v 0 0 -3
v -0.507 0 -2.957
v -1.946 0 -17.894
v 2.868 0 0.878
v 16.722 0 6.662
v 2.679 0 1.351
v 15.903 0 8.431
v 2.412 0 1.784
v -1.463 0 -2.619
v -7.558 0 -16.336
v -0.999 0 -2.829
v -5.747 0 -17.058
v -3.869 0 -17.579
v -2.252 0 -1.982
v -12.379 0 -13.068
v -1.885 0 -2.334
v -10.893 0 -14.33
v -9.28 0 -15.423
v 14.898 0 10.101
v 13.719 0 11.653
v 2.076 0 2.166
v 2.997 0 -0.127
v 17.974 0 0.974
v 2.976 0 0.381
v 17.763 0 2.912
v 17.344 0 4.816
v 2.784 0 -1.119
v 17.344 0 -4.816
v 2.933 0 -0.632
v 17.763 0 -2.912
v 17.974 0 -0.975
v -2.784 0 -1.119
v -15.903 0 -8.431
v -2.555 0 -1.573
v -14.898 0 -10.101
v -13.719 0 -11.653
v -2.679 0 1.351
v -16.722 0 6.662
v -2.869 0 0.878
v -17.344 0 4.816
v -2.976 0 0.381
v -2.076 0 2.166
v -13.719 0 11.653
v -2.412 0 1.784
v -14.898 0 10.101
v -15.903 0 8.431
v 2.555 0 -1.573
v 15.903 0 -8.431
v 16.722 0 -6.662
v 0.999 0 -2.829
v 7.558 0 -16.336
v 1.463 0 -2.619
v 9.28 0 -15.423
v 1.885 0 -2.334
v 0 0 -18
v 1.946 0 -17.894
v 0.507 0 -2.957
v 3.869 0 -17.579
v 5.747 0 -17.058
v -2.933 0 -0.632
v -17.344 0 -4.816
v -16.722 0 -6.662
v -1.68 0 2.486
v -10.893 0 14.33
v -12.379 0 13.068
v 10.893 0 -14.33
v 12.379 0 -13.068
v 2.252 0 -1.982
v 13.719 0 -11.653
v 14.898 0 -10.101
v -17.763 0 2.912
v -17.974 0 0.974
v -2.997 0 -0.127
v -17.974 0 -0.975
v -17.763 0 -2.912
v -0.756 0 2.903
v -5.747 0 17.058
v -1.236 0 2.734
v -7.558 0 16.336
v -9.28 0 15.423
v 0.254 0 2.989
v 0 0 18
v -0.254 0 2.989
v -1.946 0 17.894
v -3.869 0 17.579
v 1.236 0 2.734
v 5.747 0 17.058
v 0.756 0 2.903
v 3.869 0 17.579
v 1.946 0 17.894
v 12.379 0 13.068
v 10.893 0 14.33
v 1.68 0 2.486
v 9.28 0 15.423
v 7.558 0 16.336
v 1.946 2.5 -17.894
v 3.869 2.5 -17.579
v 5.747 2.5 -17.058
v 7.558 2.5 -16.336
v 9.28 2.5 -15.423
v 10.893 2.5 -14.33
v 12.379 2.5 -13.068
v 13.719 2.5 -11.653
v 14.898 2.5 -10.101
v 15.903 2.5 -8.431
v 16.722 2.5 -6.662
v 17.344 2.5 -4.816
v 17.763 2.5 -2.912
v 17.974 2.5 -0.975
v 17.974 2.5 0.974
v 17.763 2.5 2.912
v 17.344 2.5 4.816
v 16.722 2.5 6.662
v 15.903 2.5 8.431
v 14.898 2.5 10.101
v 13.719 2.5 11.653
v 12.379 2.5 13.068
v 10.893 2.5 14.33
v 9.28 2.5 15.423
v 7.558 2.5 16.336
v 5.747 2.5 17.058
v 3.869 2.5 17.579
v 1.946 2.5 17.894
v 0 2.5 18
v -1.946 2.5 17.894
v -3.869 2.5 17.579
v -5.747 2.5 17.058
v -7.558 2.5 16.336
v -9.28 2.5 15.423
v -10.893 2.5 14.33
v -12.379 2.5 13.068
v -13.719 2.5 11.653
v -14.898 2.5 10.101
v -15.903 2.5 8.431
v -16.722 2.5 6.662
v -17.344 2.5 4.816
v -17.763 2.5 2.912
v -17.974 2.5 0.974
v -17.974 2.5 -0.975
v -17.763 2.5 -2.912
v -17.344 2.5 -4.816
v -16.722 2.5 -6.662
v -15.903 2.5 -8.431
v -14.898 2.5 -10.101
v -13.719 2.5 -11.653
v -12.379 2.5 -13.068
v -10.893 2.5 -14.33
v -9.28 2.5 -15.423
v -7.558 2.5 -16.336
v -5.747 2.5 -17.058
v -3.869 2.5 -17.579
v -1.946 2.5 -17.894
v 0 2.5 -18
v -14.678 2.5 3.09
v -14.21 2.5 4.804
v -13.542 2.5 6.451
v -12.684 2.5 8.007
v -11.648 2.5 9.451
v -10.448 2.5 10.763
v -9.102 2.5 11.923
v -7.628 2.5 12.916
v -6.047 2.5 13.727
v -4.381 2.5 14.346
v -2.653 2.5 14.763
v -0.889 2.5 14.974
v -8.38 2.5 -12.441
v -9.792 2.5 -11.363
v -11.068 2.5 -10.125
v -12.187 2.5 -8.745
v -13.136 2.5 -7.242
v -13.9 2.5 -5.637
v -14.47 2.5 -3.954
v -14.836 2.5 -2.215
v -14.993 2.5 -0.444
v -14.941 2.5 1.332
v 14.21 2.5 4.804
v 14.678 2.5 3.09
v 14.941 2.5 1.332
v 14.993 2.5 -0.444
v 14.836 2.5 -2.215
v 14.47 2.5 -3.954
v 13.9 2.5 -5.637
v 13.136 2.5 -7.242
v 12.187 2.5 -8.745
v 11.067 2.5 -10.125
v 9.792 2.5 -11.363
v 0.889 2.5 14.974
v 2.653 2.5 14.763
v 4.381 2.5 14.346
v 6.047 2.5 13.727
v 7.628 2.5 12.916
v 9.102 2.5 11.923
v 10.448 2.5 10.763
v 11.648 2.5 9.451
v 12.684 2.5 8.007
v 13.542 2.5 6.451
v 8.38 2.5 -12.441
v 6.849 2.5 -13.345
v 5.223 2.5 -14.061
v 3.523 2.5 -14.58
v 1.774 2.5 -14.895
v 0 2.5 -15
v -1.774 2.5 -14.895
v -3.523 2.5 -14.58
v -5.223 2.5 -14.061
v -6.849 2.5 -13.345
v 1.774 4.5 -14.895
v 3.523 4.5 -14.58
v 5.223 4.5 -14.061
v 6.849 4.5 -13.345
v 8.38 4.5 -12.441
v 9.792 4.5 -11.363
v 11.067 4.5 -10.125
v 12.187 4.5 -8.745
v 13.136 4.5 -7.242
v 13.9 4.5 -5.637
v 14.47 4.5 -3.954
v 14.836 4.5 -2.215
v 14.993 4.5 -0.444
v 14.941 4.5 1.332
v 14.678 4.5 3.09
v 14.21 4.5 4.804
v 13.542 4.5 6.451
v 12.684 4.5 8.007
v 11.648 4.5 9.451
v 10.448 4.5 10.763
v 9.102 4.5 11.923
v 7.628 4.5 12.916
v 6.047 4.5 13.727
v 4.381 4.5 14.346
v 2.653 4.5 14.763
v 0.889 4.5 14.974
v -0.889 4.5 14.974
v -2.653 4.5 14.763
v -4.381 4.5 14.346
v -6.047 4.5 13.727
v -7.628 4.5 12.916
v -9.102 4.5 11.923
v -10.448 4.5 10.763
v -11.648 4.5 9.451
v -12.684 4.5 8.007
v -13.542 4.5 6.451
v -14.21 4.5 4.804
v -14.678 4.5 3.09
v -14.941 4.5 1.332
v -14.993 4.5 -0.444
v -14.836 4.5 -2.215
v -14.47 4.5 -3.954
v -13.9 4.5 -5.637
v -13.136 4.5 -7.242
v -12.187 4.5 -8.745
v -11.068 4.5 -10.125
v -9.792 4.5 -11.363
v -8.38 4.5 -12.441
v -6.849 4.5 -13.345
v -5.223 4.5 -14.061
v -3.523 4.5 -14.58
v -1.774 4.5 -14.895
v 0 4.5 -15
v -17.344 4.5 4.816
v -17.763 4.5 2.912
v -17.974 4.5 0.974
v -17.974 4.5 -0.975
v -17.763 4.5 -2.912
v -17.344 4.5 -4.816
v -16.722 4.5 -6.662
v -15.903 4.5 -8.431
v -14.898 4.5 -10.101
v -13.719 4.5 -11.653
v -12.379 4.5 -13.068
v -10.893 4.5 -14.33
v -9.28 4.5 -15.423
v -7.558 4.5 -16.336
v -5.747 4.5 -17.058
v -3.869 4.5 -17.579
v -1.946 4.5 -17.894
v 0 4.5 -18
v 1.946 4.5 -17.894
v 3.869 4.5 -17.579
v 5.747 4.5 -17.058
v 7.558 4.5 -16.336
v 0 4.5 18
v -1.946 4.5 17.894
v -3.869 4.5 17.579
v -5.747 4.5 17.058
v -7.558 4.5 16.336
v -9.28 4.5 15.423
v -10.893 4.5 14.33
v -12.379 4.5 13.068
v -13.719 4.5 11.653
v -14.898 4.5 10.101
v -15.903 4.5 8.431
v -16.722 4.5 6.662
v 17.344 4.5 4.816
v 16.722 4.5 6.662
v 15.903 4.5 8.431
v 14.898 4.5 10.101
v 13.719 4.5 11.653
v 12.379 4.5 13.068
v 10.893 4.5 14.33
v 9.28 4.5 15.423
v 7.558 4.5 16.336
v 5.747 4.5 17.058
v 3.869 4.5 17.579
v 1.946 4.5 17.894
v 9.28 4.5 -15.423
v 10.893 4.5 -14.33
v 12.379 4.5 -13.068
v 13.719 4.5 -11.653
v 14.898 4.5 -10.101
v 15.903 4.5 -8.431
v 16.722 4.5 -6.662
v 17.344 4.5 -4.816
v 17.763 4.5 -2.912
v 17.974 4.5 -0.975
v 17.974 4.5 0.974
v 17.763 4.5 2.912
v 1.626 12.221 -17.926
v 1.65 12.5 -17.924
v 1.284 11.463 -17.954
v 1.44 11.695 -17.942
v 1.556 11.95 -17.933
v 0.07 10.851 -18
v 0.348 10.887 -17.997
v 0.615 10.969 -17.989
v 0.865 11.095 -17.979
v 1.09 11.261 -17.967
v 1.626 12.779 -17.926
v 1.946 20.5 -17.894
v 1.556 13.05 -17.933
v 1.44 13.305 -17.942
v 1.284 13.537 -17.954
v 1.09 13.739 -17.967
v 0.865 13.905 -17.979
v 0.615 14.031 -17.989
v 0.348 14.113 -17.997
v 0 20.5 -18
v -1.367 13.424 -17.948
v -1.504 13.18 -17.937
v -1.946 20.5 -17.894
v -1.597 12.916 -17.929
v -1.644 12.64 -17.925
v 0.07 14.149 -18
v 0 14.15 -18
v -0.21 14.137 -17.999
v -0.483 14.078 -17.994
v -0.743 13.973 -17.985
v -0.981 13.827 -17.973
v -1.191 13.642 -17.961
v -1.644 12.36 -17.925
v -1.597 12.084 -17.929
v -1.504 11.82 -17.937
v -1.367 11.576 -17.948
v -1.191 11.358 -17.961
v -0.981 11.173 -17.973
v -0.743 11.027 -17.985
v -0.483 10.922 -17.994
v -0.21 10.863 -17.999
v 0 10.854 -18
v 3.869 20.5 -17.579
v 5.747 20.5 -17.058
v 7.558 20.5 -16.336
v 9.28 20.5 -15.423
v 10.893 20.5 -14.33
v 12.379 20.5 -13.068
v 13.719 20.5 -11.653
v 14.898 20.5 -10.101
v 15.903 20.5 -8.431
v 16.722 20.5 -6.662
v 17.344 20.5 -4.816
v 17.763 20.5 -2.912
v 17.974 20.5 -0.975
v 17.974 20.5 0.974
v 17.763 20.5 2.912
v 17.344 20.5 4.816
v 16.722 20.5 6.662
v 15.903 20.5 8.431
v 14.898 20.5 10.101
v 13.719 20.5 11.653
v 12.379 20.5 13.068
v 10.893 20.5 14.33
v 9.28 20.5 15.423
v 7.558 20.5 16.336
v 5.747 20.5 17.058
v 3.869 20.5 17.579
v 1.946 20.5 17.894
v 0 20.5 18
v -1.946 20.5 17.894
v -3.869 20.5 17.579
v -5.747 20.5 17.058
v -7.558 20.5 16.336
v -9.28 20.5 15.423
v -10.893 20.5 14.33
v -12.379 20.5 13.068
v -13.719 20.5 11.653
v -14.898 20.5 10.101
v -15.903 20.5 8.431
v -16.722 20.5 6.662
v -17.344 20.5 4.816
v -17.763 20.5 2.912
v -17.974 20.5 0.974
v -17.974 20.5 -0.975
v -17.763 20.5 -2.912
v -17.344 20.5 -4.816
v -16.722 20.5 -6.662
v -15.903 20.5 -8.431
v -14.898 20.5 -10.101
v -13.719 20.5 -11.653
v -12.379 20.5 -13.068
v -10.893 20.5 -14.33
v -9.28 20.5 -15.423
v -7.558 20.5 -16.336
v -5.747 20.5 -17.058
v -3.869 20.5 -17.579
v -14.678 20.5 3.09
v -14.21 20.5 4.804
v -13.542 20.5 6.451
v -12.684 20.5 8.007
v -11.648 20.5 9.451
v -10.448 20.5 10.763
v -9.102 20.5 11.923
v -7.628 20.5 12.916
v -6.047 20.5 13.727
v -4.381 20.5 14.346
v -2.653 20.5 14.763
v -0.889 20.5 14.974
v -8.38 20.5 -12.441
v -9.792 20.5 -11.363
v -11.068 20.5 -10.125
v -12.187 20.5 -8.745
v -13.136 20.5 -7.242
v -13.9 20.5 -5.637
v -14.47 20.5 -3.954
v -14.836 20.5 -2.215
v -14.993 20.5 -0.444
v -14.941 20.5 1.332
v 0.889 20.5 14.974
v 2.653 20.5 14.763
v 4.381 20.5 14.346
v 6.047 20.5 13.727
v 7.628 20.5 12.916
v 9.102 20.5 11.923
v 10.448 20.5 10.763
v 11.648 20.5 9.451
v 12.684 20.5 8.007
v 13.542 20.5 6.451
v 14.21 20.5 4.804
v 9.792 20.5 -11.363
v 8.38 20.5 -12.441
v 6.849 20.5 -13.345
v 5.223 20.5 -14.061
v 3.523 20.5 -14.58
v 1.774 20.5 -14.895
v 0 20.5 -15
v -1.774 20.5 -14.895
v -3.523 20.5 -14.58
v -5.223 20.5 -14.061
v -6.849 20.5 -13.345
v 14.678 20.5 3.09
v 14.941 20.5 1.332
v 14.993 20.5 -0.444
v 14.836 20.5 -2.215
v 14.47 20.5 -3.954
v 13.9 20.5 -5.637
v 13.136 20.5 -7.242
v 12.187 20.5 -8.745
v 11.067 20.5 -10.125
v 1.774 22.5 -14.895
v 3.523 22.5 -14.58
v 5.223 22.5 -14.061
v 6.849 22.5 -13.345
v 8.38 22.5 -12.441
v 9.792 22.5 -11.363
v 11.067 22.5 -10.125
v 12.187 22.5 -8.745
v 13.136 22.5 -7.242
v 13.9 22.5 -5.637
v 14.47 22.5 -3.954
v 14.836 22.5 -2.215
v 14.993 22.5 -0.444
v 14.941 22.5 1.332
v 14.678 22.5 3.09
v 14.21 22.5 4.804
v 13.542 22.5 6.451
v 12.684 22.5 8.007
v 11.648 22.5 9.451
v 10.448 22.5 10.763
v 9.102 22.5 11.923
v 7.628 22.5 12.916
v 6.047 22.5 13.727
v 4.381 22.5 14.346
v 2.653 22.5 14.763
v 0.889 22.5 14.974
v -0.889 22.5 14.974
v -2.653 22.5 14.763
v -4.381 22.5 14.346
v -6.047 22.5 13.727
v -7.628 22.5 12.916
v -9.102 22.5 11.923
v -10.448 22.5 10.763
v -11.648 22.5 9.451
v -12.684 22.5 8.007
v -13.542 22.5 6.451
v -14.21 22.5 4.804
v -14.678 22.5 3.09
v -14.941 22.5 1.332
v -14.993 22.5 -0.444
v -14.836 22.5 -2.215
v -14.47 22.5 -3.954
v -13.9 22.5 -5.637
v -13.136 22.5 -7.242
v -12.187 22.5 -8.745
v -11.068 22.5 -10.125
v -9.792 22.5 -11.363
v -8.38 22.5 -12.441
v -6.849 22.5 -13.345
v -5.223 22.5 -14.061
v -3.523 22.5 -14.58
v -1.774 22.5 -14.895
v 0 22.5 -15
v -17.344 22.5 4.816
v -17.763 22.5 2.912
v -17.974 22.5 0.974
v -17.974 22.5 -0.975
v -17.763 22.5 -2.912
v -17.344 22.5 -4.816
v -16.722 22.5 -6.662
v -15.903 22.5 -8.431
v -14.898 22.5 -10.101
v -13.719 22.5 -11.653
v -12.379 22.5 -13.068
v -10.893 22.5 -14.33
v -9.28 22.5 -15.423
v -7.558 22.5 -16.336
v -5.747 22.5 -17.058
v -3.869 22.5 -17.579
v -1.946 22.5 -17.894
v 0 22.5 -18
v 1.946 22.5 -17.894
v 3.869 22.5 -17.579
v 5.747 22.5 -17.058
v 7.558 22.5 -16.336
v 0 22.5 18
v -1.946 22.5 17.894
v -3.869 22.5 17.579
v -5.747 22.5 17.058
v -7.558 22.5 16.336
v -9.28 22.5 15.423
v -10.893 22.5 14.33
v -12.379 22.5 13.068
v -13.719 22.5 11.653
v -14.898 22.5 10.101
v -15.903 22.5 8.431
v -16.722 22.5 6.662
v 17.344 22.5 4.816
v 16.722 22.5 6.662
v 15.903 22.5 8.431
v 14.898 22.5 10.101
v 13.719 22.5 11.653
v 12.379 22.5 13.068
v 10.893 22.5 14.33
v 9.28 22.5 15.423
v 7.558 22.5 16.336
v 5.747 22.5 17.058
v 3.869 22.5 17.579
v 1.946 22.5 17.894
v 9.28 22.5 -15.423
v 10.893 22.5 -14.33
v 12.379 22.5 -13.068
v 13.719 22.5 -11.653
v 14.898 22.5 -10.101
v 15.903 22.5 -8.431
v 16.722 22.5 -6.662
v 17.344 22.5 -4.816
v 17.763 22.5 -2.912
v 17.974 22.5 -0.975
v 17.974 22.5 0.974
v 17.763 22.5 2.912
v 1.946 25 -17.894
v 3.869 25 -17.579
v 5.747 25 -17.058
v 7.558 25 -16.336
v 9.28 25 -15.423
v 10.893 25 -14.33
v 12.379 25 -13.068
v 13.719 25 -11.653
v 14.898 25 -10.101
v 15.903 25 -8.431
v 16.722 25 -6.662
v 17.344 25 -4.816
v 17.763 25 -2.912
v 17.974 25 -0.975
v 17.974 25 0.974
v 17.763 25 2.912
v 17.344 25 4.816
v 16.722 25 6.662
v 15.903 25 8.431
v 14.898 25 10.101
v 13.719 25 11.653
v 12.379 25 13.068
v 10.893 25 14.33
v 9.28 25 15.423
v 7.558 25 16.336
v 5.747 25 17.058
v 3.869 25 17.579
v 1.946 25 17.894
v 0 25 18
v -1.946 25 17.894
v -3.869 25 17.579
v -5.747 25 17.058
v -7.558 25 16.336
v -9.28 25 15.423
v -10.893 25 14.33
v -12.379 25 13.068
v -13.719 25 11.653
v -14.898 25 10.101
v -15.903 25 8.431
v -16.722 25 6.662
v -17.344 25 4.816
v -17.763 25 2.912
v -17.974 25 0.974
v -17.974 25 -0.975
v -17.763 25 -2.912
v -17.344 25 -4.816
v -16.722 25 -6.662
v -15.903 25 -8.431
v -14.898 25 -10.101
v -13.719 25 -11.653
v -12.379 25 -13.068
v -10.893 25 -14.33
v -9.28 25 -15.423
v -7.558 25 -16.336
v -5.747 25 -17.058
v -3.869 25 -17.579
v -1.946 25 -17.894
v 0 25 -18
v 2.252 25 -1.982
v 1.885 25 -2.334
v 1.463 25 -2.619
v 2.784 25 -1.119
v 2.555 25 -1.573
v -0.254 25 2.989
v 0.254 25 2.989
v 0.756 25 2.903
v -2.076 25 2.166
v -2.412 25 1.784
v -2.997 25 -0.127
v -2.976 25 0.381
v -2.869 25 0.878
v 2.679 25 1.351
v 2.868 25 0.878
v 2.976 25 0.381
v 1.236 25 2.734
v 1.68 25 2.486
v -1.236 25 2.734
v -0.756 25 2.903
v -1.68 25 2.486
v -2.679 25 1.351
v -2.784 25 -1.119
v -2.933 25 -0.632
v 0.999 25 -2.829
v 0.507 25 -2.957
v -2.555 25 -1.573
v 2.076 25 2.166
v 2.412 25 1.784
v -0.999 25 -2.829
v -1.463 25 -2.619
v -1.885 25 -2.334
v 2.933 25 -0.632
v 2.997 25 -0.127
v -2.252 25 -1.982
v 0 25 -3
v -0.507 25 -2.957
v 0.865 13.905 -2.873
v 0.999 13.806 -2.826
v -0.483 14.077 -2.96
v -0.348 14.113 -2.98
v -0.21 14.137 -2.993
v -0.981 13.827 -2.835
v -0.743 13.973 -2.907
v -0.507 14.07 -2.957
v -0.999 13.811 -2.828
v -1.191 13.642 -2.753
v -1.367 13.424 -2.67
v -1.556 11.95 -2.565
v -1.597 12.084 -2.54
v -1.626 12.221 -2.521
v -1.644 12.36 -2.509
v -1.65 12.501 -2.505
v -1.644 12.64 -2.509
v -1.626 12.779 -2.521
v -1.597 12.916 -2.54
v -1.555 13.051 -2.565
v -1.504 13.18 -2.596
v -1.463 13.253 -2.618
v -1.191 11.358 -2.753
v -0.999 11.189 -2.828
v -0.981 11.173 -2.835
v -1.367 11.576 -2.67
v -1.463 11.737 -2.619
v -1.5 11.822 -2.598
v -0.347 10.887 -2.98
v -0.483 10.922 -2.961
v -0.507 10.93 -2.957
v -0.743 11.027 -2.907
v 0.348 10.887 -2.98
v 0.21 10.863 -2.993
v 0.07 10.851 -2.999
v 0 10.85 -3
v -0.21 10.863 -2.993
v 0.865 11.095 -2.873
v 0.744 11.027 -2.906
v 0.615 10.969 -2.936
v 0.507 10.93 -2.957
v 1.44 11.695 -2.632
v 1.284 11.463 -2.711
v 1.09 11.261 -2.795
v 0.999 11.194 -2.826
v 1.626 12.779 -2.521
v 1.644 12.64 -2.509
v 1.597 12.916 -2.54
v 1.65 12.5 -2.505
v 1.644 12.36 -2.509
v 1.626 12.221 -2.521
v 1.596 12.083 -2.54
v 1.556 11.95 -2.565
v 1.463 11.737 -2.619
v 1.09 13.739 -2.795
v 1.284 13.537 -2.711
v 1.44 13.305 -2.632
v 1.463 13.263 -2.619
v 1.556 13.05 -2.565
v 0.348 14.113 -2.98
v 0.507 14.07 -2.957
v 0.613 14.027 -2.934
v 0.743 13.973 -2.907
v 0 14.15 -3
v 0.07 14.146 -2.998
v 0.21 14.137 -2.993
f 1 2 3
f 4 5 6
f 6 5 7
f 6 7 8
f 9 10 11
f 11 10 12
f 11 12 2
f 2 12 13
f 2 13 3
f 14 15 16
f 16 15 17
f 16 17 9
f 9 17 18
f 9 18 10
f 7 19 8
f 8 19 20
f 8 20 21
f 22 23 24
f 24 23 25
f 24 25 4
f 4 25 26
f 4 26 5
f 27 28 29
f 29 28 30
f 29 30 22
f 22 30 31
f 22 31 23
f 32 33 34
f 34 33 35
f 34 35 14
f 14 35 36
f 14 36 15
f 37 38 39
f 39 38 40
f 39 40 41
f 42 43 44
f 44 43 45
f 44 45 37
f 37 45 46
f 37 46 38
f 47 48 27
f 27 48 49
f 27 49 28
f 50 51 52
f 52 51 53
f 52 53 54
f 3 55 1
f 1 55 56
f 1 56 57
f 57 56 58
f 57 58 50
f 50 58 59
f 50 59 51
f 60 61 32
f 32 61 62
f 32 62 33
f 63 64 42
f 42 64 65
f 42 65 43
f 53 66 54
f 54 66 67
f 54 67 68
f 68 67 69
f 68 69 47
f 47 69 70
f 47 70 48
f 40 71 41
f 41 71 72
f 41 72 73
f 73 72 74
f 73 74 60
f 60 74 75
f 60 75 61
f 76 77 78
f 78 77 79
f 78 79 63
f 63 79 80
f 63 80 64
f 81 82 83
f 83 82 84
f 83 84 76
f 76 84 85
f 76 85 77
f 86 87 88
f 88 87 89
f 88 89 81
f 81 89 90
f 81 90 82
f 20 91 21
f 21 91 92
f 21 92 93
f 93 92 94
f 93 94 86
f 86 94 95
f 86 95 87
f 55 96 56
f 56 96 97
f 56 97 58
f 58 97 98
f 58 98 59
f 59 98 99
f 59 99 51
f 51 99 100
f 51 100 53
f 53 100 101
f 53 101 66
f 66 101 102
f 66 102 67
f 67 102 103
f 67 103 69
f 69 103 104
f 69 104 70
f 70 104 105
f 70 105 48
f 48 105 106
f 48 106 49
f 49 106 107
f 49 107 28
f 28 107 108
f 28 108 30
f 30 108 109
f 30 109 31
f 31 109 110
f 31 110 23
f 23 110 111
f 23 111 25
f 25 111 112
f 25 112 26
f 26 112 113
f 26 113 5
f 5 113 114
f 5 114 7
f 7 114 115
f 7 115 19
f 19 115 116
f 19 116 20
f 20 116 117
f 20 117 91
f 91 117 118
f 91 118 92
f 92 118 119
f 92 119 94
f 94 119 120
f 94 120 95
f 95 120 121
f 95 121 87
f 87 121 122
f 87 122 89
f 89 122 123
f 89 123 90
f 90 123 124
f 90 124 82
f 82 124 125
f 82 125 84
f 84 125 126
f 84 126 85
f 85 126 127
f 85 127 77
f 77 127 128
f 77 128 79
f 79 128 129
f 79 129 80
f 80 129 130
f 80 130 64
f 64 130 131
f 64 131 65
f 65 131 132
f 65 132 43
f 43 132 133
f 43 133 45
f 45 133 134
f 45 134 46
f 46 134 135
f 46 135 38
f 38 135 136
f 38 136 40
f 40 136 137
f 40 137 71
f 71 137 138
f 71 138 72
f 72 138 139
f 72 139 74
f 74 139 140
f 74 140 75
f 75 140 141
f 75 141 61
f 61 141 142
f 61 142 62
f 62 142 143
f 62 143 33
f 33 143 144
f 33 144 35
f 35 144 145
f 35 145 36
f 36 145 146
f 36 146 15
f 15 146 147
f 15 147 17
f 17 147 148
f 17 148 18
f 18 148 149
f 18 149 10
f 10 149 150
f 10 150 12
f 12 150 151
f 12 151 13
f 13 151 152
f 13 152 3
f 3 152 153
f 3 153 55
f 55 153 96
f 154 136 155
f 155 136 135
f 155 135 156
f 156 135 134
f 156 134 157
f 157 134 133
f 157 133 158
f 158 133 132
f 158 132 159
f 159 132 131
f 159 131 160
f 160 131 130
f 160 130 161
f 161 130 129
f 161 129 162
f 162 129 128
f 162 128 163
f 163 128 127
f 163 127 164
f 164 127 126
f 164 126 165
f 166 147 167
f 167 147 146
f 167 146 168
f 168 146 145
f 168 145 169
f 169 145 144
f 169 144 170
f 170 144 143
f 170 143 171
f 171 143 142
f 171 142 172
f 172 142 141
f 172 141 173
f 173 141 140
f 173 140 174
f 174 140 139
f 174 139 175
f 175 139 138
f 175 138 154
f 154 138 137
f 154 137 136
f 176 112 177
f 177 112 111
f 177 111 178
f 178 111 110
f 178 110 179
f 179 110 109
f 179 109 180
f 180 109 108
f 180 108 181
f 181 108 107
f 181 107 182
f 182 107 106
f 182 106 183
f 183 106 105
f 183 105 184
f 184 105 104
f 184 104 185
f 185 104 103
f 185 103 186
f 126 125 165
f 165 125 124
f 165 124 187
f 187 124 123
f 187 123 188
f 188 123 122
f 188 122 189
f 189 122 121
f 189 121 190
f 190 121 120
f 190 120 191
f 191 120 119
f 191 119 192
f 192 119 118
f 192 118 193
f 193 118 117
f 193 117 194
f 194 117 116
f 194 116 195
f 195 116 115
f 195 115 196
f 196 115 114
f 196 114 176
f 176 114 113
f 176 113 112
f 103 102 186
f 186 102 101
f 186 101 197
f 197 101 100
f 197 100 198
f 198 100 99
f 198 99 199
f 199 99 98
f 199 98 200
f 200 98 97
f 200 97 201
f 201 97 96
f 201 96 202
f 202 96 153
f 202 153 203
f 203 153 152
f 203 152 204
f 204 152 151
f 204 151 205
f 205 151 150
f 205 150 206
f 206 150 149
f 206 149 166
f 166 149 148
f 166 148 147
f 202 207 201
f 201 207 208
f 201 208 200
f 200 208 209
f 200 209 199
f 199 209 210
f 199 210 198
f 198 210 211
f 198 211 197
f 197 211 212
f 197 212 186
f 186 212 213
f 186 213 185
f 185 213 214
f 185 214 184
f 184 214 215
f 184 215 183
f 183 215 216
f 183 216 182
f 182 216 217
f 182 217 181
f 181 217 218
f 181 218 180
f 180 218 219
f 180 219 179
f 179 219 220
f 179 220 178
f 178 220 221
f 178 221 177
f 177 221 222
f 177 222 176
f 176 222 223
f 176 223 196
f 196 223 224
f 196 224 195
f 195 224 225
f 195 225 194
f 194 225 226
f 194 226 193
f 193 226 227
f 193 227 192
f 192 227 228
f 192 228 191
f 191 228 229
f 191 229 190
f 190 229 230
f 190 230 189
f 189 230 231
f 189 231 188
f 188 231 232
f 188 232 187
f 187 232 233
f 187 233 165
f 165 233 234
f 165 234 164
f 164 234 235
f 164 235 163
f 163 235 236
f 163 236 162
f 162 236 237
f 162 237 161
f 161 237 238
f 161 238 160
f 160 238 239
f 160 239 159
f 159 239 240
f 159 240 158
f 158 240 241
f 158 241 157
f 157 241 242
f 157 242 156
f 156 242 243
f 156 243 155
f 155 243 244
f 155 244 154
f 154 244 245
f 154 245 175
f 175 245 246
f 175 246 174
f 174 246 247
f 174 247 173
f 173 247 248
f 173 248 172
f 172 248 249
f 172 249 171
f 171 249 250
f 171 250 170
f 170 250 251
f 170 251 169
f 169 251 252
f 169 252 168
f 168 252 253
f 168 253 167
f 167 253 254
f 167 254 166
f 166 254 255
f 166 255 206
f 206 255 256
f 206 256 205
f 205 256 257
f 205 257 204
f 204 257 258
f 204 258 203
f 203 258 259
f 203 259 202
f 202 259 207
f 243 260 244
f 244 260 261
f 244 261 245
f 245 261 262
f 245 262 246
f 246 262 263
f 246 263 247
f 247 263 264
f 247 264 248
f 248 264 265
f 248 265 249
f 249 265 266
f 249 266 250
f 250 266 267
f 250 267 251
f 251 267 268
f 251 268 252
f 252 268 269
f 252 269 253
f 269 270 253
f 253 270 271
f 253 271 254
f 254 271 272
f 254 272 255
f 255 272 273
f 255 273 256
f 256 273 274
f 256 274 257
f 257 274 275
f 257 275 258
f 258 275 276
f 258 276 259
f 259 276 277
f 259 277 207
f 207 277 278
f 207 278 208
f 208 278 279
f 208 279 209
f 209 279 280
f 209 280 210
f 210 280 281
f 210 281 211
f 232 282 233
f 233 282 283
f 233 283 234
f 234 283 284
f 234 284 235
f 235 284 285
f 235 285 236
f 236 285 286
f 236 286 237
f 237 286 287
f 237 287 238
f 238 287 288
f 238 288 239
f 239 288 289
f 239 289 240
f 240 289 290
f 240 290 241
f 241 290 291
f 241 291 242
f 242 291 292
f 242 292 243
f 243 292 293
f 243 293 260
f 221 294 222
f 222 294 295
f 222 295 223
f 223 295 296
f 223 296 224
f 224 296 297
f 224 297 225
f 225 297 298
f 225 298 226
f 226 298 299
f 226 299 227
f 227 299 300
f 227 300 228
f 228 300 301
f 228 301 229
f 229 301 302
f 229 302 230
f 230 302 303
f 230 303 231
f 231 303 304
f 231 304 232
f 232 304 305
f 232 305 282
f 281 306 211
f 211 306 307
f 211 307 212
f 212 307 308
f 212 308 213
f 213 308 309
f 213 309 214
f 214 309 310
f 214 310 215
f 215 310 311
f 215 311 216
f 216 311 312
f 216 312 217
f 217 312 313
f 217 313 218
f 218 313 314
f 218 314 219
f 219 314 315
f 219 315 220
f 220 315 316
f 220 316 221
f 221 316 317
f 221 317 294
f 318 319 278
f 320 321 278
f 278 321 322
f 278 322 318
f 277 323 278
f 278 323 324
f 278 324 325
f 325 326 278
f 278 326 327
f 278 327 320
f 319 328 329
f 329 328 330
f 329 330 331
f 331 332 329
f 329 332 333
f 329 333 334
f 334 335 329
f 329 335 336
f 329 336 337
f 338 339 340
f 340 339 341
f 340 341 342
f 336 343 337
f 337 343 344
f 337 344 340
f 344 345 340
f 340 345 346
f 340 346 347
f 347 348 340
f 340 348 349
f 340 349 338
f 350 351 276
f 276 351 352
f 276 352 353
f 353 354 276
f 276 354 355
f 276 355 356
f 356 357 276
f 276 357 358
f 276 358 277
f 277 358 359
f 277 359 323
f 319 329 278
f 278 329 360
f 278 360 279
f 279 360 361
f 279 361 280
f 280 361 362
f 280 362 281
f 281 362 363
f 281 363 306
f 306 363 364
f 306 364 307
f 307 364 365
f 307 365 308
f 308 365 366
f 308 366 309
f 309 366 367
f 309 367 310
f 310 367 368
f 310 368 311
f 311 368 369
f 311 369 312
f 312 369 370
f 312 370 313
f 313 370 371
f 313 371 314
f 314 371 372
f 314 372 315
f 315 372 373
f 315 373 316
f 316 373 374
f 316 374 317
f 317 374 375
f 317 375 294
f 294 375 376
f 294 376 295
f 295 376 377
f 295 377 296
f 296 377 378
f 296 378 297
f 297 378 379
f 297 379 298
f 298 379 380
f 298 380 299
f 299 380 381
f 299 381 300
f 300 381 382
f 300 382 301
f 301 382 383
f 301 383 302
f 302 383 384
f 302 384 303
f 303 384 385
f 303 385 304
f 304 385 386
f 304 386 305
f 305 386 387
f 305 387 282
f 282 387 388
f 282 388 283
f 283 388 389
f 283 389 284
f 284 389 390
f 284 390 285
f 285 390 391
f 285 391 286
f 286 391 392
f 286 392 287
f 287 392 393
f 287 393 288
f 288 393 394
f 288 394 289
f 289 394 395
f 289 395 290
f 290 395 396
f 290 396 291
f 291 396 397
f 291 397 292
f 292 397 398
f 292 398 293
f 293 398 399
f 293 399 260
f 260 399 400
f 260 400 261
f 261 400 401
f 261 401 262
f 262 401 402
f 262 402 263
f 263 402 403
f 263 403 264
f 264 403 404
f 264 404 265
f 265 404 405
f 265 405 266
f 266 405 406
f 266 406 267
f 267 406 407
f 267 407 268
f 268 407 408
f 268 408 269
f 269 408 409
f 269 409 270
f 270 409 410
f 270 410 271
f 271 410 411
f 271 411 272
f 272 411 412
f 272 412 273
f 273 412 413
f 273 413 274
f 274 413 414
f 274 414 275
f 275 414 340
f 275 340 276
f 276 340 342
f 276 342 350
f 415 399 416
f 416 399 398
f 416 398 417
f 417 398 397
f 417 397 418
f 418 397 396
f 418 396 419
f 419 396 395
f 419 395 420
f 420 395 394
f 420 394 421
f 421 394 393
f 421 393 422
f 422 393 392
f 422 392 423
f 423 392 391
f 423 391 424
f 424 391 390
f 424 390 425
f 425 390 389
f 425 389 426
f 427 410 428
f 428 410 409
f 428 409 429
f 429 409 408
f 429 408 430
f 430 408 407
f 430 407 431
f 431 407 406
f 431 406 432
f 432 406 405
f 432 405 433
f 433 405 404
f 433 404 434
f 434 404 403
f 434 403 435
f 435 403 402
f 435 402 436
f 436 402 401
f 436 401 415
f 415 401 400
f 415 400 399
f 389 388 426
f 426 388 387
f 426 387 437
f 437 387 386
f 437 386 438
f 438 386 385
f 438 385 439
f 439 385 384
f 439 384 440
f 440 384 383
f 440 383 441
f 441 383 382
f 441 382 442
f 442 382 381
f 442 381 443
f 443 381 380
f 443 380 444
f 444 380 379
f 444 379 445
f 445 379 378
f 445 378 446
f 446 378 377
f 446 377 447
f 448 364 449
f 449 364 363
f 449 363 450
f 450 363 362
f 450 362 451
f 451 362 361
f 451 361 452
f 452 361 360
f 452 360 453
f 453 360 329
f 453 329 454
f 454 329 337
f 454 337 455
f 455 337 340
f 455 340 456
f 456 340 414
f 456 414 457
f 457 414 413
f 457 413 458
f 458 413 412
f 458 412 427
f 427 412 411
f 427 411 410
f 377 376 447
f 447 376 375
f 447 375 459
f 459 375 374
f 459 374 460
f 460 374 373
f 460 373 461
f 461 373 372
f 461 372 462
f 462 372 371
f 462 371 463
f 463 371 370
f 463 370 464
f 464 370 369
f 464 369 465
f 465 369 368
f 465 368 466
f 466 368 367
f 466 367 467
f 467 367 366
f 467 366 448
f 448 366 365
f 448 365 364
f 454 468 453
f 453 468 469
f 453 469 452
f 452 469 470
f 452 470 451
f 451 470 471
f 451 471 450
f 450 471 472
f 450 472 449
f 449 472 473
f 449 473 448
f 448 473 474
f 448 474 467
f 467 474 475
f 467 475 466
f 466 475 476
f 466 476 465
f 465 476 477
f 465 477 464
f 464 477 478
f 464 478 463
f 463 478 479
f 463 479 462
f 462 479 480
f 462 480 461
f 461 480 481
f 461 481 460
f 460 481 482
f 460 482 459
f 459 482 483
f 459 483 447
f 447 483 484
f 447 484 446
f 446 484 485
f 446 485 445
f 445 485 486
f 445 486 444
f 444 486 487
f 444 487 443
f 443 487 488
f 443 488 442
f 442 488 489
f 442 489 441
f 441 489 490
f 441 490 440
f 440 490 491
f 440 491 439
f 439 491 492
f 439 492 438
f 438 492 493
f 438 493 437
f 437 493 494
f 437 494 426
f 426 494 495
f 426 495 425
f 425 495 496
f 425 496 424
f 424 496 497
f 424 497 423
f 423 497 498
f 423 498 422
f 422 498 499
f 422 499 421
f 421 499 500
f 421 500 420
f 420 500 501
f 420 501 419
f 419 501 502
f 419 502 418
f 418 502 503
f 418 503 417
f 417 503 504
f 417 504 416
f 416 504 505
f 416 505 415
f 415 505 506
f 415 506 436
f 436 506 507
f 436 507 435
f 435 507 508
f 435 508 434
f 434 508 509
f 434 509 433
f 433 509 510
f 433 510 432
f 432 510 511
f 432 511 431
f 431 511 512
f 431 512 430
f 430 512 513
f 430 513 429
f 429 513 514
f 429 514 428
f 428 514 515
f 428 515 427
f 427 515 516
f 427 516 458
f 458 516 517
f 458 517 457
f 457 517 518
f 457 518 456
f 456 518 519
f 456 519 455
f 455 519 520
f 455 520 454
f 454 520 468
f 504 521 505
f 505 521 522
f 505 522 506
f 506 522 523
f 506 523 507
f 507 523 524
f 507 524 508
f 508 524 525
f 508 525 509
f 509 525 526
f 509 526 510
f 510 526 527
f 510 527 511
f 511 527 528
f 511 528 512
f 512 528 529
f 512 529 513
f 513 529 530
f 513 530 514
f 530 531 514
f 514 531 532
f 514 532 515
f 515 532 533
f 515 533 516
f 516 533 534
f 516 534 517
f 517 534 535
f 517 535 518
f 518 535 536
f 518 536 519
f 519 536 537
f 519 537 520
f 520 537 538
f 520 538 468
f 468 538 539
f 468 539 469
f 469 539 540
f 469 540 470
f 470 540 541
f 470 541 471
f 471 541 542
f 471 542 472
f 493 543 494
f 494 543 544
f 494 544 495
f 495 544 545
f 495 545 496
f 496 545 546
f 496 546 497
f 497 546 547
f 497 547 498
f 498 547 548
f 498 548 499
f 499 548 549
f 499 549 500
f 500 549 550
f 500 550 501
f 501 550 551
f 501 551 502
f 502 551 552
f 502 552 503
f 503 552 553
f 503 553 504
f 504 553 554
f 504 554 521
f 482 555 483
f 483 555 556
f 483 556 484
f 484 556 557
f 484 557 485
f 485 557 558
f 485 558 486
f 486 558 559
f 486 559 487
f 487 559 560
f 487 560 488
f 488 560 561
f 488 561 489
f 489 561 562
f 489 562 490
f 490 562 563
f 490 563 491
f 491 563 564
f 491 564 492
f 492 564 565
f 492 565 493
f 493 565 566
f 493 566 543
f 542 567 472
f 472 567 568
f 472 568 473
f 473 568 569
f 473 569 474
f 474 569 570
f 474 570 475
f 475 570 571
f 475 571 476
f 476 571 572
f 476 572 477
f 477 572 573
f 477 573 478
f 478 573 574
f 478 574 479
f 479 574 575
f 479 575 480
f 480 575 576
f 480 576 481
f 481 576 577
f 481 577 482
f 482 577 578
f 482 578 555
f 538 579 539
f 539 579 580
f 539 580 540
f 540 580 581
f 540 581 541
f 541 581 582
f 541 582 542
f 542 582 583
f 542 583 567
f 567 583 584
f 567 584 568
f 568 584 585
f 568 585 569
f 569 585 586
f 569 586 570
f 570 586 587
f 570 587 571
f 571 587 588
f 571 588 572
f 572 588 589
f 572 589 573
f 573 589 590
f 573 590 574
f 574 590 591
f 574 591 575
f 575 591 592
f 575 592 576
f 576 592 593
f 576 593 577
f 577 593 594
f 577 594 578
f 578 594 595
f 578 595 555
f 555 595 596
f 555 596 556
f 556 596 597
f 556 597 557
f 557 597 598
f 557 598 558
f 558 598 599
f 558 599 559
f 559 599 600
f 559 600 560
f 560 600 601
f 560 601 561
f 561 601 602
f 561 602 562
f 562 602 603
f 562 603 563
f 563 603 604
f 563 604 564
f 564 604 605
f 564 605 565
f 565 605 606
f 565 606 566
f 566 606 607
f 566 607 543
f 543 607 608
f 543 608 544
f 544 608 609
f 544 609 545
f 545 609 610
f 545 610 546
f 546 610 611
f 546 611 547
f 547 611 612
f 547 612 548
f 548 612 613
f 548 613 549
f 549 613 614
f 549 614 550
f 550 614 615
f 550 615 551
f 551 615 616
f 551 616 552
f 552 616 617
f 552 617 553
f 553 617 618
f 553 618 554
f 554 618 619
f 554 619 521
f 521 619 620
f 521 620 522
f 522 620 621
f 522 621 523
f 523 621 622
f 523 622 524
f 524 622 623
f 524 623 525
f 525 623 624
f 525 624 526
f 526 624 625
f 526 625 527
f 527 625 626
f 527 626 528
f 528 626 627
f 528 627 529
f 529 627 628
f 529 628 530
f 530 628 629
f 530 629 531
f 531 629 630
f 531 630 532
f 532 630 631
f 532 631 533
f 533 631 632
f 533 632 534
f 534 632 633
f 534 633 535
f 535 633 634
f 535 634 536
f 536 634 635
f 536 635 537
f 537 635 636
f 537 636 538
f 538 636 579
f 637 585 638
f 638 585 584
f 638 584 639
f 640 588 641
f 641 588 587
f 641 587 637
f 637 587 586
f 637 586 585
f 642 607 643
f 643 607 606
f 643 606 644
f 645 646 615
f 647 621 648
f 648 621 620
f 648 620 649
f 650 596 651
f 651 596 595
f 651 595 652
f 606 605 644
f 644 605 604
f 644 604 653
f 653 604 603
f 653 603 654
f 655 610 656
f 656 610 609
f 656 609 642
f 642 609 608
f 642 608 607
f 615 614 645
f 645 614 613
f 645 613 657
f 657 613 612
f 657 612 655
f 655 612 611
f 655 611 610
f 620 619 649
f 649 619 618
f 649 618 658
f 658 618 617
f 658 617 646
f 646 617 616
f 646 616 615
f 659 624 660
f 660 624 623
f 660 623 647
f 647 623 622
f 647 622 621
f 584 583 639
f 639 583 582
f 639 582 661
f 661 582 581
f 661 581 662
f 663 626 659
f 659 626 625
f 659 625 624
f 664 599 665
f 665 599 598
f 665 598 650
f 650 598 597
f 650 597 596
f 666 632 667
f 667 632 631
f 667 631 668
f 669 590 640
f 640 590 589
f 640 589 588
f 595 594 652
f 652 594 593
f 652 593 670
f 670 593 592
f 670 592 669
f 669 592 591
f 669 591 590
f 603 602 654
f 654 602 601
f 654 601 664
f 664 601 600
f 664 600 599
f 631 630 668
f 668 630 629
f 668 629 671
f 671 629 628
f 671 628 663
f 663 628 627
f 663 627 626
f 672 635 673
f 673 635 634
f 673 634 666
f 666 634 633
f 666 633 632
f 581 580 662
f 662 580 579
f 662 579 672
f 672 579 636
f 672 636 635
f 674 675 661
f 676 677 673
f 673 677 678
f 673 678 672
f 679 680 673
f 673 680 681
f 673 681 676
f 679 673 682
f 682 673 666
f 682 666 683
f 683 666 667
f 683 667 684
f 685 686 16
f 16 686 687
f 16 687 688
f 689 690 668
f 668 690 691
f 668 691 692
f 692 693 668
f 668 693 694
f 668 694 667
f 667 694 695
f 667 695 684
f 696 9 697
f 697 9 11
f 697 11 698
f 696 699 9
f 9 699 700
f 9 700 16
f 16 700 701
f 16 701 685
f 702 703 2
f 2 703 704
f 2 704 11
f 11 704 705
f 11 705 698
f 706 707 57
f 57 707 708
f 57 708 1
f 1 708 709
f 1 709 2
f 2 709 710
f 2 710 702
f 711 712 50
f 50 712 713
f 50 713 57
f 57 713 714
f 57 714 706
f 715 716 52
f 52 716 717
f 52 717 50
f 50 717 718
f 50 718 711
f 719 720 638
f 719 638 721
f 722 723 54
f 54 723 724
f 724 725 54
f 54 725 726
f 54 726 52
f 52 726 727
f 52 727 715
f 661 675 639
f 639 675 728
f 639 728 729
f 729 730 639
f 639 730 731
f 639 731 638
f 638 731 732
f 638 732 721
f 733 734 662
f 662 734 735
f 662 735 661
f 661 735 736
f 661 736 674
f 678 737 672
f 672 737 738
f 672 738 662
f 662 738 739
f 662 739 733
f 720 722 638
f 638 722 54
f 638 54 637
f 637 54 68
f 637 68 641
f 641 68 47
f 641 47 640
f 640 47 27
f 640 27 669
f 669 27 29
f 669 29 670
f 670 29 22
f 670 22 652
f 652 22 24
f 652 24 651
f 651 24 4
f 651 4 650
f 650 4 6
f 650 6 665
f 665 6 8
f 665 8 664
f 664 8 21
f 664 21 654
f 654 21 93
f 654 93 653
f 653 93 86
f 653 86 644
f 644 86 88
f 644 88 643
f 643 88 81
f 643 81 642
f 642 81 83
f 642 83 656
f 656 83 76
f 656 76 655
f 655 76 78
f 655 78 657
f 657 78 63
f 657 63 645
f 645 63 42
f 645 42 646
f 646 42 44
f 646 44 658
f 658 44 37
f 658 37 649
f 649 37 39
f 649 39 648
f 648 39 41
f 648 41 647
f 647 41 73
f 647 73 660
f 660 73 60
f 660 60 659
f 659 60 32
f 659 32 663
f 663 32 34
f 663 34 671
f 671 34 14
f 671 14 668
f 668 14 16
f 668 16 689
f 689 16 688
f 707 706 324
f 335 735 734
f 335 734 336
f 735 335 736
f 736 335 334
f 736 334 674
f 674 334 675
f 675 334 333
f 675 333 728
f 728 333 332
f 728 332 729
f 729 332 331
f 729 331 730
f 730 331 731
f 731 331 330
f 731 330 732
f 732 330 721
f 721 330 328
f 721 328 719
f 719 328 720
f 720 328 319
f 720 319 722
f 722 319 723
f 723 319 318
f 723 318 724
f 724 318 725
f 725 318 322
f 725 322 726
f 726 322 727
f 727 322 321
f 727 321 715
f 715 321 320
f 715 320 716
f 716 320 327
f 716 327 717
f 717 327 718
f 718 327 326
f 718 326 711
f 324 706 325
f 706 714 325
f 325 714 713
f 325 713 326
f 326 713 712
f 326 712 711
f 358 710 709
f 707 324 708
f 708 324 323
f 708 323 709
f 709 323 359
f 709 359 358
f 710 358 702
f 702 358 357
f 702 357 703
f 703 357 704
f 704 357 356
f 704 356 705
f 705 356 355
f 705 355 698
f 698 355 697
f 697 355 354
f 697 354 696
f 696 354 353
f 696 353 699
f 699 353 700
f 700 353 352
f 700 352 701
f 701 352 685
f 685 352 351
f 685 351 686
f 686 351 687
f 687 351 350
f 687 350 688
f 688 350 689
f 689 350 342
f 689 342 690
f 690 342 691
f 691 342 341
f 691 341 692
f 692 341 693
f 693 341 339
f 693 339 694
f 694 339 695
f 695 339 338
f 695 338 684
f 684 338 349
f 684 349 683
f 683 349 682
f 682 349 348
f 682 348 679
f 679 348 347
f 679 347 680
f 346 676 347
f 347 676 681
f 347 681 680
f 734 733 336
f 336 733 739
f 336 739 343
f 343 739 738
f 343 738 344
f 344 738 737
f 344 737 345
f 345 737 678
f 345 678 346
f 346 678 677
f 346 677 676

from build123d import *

# Parameters (mm, degrees)
SKETCH2_R          = 1.65
CUT_EXTRUDE1_DEPTH = 36.67912555


with BuildPart() as part:
    # Sketch1 → Revolve1 (revolve)
    with BuildSketch(Plane.XY, mode=Mode.PRIVATE) as revolve1_sk:
        Polygon((10, 0), (18, 0), (18, 2.5), (15, 2.5), (15, 4.5), (18, 4.5), (18, 20.5), (15, 20.5), (15, 22.5), (18, 22.5), (18, 25), (3, 25), (3, 0), align=None)
    revolve(revolve1_sk.sketch.rotate(Axis((0, 0, 0), (0, 1, 0)), 90), axis=Axis((0, 0, 0), (0, 1, 0)))

    # Sketch2 → Cut-Extrude1 (cut, through all)
    with BuildSketch(Plane.XY):
        with Locations(Location((0, 12.5, 0), (0, 0, 90))):
            Circle(SKETCH2_R)
    extrude(amount=-CUT_EXTRUDE1_DEPTH, mode=Mode.SUBTRACT)


solid = part.part
